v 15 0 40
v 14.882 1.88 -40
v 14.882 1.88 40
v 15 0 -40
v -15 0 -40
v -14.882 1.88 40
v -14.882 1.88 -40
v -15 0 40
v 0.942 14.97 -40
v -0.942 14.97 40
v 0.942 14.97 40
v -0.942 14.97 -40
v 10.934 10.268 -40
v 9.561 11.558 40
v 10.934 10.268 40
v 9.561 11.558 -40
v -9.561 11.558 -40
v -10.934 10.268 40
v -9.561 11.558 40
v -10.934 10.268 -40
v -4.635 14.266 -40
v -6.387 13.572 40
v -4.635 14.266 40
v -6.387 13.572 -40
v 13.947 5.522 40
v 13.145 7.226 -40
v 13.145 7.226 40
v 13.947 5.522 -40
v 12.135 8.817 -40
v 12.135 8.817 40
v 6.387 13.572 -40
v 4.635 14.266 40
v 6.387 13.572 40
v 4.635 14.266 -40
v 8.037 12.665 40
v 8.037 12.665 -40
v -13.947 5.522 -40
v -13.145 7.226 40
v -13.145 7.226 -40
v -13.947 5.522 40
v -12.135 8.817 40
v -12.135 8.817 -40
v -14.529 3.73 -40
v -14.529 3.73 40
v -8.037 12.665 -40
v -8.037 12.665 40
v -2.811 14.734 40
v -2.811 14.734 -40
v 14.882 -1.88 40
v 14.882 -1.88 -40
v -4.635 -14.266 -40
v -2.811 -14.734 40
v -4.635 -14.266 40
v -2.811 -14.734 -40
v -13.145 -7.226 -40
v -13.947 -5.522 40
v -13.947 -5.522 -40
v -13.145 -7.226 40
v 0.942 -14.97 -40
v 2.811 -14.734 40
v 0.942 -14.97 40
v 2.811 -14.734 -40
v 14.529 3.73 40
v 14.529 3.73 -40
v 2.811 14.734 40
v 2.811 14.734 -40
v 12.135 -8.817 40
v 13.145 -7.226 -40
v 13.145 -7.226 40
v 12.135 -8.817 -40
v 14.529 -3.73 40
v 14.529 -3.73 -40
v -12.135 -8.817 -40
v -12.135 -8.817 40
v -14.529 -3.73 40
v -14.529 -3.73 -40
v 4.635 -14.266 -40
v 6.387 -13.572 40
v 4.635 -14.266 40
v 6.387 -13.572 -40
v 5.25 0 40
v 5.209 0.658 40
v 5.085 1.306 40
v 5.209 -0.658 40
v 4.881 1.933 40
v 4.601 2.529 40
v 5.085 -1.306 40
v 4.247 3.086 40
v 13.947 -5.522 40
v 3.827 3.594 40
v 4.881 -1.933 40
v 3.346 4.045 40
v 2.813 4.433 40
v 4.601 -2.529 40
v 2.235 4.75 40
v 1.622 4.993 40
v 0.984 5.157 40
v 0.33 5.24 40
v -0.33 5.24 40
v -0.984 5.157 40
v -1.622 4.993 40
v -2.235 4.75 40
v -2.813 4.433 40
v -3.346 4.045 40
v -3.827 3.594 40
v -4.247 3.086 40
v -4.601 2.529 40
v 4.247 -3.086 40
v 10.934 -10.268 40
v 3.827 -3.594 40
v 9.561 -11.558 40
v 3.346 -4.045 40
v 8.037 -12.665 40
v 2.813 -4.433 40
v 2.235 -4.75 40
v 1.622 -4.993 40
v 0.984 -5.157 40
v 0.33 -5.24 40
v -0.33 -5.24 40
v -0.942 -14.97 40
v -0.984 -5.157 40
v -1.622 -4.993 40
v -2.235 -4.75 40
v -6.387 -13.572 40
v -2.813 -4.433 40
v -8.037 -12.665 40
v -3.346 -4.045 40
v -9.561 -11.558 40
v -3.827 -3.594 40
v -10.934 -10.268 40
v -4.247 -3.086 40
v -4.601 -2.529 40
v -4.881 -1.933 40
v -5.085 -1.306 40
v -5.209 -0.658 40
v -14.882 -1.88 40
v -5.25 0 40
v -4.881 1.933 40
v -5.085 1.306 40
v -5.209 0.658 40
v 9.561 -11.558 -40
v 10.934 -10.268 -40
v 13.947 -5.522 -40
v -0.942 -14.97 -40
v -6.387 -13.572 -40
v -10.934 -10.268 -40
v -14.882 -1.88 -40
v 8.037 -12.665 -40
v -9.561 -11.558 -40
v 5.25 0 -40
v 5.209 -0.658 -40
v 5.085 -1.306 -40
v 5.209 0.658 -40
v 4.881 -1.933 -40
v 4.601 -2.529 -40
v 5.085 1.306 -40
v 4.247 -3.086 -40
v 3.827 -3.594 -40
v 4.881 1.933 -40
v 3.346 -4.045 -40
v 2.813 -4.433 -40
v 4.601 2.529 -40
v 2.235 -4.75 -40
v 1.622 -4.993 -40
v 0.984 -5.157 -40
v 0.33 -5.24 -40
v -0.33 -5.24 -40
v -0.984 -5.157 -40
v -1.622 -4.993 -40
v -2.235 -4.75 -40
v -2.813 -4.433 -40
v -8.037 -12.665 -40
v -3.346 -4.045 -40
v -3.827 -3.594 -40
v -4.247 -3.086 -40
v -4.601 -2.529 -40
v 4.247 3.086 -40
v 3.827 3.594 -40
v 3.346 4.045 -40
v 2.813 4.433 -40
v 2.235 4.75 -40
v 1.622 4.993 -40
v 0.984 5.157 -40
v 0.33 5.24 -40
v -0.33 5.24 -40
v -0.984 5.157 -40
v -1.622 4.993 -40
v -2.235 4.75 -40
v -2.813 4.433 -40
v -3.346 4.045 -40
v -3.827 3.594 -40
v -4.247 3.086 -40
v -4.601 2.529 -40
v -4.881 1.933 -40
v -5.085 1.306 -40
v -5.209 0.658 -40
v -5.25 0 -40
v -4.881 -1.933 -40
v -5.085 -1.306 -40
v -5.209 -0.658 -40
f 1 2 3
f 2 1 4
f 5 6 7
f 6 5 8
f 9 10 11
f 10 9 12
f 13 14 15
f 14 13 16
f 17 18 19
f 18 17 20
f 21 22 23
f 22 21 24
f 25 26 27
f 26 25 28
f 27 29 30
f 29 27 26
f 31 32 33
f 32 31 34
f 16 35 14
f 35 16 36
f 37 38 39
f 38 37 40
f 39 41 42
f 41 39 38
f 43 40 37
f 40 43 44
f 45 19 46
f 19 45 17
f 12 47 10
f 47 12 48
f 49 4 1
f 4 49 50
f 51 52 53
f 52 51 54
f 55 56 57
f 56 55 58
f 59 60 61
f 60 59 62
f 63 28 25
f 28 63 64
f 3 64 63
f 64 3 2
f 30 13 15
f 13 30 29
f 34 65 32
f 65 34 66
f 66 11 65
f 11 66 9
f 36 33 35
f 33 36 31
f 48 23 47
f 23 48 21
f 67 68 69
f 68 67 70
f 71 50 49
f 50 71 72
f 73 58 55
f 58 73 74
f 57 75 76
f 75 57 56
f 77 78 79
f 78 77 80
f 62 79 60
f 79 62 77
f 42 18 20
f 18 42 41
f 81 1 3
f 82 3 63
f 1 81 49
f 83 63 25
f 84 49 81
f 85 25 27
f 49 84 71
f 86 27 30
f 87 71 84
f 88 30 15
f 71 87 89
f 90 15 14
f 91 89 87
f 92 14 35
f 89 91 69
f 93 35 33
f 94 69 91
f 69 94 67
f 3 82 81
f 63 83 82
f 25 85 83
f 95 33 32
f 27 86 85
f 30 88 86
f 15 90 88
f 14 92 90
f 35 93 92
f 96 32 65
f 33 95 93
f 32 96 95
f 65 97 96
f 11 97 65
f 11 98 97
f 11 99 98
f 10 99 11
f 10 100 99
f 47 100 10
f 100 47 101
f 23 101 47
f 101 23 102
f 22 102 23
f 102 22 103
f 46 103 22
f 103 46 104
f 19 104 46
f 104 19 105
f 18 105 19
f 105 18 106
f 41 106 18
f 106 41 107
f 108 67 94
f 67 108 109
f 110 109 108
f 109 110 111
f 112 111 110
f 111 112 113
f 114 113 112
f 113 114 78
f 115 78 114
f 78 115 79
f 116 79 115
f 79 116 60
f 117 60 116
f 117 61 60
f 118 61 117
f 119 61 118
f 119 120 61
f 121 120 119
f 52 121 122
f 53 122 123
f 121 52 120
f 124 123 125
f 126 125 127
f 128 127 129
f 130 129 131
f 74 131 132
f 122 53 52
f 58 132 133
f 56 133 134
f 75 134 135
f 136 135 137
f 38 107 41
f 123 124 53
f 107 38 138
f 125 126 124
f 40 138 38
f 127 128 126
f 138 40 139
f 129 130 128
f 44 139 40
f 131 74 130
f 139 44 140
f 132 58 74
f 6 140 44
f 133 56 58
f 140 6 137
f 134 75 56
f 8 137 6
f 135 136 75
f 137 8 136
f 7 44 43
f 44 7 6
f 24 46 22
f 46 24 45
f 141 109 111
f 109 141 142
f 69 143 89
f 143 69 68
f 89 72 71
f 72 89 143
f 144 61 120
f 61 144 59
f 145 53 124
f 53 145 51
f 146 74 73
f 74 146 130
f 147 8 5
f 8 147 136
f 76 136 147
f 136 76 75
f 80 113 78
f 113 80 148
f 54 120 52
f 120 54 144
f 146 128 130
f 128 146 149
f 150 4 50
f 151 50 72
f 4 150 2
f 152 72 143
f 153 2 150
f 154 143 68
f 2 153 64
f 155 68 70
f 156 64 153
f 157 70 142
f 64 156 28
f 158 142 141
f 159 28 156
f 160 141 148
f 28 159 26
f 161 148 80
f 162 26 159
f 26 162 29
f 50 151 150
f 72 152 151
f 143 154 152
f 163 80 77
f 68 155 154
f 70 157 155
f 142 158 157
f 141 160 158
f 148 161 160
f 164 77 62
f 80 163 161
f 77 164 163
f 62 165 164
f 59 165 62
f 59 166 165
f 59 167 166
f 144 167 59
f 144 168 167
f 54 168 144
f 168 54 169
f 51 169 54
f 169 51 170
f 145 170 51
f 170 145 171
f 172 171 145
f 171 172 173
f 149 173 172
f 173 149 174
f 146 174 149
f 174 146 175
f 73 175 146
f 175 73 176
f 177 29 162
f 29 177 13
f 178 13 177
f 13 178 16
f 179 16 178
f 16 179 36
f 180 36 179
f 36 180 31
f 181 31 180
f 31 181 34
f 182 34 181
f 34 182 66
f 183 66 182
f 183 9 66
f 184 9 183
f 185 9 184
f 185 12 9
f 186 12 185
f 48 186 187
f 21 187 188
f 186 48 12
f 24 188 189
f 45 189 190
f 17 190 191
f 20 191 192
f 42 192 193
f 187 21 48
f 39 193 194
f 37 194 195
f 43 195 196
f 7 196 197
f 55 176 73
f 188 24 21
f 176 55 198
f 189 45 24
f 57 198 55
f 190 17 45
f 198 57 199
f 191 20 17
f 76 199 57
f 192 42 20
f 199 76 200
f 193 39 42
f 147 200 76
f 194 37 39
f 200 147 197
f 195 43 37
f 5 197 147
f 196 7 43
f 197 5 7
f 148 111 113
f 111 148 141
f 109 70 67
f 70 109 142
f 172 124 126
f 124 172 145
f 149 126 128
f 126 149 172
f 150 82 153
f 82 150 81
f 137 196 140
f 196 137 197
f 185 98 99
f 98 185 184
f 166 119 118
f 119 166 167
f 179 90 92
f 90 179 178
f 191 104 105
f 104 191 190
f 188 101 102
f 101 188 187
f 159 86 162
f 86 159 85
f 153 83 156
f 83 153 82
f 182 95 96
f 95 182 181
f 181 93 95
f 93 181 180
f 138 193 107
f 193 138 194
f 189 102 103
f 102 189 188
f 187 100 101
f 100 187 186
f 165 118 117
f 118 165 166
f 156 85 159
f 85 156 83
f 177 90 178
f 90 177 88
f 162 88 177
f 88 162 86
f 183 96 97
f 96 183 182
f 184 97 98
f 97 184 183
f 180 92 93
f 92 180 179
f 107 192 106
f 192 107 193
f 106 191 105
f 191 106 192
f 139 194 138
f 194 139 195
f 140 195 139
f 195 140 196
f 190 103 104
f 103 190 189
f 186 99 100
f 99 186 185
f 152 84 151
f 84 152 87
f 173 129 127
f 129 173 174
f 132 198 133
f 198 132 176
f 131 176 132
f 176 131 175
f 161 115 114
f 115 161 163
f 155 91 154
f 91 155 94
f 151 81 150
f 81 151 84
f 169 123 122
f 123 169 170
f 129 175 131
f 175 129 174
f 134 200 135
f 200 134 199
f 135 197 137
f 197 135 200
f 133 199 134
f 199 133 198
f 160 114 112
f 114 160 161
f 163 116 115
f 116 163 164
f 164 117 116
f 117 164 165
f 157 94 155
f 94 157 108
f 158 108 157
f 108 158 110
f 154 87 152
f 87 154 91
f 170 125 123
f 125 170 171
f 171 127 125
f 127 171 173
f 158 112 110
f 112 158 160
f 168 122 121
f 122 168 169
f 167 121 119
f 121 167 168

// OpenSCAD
$fn = 50;


difference() {
	union() {
		translate(v = [0, 0, -40.0000000000]) {
			cylinder(h = 80, r = 15.0000000000);
		}
	}
	union() {
		translate(v = [0, 0, -100.0000000000]) {
			cylinder(h = 200, r = 5.2500000000);
		}
	}
}
